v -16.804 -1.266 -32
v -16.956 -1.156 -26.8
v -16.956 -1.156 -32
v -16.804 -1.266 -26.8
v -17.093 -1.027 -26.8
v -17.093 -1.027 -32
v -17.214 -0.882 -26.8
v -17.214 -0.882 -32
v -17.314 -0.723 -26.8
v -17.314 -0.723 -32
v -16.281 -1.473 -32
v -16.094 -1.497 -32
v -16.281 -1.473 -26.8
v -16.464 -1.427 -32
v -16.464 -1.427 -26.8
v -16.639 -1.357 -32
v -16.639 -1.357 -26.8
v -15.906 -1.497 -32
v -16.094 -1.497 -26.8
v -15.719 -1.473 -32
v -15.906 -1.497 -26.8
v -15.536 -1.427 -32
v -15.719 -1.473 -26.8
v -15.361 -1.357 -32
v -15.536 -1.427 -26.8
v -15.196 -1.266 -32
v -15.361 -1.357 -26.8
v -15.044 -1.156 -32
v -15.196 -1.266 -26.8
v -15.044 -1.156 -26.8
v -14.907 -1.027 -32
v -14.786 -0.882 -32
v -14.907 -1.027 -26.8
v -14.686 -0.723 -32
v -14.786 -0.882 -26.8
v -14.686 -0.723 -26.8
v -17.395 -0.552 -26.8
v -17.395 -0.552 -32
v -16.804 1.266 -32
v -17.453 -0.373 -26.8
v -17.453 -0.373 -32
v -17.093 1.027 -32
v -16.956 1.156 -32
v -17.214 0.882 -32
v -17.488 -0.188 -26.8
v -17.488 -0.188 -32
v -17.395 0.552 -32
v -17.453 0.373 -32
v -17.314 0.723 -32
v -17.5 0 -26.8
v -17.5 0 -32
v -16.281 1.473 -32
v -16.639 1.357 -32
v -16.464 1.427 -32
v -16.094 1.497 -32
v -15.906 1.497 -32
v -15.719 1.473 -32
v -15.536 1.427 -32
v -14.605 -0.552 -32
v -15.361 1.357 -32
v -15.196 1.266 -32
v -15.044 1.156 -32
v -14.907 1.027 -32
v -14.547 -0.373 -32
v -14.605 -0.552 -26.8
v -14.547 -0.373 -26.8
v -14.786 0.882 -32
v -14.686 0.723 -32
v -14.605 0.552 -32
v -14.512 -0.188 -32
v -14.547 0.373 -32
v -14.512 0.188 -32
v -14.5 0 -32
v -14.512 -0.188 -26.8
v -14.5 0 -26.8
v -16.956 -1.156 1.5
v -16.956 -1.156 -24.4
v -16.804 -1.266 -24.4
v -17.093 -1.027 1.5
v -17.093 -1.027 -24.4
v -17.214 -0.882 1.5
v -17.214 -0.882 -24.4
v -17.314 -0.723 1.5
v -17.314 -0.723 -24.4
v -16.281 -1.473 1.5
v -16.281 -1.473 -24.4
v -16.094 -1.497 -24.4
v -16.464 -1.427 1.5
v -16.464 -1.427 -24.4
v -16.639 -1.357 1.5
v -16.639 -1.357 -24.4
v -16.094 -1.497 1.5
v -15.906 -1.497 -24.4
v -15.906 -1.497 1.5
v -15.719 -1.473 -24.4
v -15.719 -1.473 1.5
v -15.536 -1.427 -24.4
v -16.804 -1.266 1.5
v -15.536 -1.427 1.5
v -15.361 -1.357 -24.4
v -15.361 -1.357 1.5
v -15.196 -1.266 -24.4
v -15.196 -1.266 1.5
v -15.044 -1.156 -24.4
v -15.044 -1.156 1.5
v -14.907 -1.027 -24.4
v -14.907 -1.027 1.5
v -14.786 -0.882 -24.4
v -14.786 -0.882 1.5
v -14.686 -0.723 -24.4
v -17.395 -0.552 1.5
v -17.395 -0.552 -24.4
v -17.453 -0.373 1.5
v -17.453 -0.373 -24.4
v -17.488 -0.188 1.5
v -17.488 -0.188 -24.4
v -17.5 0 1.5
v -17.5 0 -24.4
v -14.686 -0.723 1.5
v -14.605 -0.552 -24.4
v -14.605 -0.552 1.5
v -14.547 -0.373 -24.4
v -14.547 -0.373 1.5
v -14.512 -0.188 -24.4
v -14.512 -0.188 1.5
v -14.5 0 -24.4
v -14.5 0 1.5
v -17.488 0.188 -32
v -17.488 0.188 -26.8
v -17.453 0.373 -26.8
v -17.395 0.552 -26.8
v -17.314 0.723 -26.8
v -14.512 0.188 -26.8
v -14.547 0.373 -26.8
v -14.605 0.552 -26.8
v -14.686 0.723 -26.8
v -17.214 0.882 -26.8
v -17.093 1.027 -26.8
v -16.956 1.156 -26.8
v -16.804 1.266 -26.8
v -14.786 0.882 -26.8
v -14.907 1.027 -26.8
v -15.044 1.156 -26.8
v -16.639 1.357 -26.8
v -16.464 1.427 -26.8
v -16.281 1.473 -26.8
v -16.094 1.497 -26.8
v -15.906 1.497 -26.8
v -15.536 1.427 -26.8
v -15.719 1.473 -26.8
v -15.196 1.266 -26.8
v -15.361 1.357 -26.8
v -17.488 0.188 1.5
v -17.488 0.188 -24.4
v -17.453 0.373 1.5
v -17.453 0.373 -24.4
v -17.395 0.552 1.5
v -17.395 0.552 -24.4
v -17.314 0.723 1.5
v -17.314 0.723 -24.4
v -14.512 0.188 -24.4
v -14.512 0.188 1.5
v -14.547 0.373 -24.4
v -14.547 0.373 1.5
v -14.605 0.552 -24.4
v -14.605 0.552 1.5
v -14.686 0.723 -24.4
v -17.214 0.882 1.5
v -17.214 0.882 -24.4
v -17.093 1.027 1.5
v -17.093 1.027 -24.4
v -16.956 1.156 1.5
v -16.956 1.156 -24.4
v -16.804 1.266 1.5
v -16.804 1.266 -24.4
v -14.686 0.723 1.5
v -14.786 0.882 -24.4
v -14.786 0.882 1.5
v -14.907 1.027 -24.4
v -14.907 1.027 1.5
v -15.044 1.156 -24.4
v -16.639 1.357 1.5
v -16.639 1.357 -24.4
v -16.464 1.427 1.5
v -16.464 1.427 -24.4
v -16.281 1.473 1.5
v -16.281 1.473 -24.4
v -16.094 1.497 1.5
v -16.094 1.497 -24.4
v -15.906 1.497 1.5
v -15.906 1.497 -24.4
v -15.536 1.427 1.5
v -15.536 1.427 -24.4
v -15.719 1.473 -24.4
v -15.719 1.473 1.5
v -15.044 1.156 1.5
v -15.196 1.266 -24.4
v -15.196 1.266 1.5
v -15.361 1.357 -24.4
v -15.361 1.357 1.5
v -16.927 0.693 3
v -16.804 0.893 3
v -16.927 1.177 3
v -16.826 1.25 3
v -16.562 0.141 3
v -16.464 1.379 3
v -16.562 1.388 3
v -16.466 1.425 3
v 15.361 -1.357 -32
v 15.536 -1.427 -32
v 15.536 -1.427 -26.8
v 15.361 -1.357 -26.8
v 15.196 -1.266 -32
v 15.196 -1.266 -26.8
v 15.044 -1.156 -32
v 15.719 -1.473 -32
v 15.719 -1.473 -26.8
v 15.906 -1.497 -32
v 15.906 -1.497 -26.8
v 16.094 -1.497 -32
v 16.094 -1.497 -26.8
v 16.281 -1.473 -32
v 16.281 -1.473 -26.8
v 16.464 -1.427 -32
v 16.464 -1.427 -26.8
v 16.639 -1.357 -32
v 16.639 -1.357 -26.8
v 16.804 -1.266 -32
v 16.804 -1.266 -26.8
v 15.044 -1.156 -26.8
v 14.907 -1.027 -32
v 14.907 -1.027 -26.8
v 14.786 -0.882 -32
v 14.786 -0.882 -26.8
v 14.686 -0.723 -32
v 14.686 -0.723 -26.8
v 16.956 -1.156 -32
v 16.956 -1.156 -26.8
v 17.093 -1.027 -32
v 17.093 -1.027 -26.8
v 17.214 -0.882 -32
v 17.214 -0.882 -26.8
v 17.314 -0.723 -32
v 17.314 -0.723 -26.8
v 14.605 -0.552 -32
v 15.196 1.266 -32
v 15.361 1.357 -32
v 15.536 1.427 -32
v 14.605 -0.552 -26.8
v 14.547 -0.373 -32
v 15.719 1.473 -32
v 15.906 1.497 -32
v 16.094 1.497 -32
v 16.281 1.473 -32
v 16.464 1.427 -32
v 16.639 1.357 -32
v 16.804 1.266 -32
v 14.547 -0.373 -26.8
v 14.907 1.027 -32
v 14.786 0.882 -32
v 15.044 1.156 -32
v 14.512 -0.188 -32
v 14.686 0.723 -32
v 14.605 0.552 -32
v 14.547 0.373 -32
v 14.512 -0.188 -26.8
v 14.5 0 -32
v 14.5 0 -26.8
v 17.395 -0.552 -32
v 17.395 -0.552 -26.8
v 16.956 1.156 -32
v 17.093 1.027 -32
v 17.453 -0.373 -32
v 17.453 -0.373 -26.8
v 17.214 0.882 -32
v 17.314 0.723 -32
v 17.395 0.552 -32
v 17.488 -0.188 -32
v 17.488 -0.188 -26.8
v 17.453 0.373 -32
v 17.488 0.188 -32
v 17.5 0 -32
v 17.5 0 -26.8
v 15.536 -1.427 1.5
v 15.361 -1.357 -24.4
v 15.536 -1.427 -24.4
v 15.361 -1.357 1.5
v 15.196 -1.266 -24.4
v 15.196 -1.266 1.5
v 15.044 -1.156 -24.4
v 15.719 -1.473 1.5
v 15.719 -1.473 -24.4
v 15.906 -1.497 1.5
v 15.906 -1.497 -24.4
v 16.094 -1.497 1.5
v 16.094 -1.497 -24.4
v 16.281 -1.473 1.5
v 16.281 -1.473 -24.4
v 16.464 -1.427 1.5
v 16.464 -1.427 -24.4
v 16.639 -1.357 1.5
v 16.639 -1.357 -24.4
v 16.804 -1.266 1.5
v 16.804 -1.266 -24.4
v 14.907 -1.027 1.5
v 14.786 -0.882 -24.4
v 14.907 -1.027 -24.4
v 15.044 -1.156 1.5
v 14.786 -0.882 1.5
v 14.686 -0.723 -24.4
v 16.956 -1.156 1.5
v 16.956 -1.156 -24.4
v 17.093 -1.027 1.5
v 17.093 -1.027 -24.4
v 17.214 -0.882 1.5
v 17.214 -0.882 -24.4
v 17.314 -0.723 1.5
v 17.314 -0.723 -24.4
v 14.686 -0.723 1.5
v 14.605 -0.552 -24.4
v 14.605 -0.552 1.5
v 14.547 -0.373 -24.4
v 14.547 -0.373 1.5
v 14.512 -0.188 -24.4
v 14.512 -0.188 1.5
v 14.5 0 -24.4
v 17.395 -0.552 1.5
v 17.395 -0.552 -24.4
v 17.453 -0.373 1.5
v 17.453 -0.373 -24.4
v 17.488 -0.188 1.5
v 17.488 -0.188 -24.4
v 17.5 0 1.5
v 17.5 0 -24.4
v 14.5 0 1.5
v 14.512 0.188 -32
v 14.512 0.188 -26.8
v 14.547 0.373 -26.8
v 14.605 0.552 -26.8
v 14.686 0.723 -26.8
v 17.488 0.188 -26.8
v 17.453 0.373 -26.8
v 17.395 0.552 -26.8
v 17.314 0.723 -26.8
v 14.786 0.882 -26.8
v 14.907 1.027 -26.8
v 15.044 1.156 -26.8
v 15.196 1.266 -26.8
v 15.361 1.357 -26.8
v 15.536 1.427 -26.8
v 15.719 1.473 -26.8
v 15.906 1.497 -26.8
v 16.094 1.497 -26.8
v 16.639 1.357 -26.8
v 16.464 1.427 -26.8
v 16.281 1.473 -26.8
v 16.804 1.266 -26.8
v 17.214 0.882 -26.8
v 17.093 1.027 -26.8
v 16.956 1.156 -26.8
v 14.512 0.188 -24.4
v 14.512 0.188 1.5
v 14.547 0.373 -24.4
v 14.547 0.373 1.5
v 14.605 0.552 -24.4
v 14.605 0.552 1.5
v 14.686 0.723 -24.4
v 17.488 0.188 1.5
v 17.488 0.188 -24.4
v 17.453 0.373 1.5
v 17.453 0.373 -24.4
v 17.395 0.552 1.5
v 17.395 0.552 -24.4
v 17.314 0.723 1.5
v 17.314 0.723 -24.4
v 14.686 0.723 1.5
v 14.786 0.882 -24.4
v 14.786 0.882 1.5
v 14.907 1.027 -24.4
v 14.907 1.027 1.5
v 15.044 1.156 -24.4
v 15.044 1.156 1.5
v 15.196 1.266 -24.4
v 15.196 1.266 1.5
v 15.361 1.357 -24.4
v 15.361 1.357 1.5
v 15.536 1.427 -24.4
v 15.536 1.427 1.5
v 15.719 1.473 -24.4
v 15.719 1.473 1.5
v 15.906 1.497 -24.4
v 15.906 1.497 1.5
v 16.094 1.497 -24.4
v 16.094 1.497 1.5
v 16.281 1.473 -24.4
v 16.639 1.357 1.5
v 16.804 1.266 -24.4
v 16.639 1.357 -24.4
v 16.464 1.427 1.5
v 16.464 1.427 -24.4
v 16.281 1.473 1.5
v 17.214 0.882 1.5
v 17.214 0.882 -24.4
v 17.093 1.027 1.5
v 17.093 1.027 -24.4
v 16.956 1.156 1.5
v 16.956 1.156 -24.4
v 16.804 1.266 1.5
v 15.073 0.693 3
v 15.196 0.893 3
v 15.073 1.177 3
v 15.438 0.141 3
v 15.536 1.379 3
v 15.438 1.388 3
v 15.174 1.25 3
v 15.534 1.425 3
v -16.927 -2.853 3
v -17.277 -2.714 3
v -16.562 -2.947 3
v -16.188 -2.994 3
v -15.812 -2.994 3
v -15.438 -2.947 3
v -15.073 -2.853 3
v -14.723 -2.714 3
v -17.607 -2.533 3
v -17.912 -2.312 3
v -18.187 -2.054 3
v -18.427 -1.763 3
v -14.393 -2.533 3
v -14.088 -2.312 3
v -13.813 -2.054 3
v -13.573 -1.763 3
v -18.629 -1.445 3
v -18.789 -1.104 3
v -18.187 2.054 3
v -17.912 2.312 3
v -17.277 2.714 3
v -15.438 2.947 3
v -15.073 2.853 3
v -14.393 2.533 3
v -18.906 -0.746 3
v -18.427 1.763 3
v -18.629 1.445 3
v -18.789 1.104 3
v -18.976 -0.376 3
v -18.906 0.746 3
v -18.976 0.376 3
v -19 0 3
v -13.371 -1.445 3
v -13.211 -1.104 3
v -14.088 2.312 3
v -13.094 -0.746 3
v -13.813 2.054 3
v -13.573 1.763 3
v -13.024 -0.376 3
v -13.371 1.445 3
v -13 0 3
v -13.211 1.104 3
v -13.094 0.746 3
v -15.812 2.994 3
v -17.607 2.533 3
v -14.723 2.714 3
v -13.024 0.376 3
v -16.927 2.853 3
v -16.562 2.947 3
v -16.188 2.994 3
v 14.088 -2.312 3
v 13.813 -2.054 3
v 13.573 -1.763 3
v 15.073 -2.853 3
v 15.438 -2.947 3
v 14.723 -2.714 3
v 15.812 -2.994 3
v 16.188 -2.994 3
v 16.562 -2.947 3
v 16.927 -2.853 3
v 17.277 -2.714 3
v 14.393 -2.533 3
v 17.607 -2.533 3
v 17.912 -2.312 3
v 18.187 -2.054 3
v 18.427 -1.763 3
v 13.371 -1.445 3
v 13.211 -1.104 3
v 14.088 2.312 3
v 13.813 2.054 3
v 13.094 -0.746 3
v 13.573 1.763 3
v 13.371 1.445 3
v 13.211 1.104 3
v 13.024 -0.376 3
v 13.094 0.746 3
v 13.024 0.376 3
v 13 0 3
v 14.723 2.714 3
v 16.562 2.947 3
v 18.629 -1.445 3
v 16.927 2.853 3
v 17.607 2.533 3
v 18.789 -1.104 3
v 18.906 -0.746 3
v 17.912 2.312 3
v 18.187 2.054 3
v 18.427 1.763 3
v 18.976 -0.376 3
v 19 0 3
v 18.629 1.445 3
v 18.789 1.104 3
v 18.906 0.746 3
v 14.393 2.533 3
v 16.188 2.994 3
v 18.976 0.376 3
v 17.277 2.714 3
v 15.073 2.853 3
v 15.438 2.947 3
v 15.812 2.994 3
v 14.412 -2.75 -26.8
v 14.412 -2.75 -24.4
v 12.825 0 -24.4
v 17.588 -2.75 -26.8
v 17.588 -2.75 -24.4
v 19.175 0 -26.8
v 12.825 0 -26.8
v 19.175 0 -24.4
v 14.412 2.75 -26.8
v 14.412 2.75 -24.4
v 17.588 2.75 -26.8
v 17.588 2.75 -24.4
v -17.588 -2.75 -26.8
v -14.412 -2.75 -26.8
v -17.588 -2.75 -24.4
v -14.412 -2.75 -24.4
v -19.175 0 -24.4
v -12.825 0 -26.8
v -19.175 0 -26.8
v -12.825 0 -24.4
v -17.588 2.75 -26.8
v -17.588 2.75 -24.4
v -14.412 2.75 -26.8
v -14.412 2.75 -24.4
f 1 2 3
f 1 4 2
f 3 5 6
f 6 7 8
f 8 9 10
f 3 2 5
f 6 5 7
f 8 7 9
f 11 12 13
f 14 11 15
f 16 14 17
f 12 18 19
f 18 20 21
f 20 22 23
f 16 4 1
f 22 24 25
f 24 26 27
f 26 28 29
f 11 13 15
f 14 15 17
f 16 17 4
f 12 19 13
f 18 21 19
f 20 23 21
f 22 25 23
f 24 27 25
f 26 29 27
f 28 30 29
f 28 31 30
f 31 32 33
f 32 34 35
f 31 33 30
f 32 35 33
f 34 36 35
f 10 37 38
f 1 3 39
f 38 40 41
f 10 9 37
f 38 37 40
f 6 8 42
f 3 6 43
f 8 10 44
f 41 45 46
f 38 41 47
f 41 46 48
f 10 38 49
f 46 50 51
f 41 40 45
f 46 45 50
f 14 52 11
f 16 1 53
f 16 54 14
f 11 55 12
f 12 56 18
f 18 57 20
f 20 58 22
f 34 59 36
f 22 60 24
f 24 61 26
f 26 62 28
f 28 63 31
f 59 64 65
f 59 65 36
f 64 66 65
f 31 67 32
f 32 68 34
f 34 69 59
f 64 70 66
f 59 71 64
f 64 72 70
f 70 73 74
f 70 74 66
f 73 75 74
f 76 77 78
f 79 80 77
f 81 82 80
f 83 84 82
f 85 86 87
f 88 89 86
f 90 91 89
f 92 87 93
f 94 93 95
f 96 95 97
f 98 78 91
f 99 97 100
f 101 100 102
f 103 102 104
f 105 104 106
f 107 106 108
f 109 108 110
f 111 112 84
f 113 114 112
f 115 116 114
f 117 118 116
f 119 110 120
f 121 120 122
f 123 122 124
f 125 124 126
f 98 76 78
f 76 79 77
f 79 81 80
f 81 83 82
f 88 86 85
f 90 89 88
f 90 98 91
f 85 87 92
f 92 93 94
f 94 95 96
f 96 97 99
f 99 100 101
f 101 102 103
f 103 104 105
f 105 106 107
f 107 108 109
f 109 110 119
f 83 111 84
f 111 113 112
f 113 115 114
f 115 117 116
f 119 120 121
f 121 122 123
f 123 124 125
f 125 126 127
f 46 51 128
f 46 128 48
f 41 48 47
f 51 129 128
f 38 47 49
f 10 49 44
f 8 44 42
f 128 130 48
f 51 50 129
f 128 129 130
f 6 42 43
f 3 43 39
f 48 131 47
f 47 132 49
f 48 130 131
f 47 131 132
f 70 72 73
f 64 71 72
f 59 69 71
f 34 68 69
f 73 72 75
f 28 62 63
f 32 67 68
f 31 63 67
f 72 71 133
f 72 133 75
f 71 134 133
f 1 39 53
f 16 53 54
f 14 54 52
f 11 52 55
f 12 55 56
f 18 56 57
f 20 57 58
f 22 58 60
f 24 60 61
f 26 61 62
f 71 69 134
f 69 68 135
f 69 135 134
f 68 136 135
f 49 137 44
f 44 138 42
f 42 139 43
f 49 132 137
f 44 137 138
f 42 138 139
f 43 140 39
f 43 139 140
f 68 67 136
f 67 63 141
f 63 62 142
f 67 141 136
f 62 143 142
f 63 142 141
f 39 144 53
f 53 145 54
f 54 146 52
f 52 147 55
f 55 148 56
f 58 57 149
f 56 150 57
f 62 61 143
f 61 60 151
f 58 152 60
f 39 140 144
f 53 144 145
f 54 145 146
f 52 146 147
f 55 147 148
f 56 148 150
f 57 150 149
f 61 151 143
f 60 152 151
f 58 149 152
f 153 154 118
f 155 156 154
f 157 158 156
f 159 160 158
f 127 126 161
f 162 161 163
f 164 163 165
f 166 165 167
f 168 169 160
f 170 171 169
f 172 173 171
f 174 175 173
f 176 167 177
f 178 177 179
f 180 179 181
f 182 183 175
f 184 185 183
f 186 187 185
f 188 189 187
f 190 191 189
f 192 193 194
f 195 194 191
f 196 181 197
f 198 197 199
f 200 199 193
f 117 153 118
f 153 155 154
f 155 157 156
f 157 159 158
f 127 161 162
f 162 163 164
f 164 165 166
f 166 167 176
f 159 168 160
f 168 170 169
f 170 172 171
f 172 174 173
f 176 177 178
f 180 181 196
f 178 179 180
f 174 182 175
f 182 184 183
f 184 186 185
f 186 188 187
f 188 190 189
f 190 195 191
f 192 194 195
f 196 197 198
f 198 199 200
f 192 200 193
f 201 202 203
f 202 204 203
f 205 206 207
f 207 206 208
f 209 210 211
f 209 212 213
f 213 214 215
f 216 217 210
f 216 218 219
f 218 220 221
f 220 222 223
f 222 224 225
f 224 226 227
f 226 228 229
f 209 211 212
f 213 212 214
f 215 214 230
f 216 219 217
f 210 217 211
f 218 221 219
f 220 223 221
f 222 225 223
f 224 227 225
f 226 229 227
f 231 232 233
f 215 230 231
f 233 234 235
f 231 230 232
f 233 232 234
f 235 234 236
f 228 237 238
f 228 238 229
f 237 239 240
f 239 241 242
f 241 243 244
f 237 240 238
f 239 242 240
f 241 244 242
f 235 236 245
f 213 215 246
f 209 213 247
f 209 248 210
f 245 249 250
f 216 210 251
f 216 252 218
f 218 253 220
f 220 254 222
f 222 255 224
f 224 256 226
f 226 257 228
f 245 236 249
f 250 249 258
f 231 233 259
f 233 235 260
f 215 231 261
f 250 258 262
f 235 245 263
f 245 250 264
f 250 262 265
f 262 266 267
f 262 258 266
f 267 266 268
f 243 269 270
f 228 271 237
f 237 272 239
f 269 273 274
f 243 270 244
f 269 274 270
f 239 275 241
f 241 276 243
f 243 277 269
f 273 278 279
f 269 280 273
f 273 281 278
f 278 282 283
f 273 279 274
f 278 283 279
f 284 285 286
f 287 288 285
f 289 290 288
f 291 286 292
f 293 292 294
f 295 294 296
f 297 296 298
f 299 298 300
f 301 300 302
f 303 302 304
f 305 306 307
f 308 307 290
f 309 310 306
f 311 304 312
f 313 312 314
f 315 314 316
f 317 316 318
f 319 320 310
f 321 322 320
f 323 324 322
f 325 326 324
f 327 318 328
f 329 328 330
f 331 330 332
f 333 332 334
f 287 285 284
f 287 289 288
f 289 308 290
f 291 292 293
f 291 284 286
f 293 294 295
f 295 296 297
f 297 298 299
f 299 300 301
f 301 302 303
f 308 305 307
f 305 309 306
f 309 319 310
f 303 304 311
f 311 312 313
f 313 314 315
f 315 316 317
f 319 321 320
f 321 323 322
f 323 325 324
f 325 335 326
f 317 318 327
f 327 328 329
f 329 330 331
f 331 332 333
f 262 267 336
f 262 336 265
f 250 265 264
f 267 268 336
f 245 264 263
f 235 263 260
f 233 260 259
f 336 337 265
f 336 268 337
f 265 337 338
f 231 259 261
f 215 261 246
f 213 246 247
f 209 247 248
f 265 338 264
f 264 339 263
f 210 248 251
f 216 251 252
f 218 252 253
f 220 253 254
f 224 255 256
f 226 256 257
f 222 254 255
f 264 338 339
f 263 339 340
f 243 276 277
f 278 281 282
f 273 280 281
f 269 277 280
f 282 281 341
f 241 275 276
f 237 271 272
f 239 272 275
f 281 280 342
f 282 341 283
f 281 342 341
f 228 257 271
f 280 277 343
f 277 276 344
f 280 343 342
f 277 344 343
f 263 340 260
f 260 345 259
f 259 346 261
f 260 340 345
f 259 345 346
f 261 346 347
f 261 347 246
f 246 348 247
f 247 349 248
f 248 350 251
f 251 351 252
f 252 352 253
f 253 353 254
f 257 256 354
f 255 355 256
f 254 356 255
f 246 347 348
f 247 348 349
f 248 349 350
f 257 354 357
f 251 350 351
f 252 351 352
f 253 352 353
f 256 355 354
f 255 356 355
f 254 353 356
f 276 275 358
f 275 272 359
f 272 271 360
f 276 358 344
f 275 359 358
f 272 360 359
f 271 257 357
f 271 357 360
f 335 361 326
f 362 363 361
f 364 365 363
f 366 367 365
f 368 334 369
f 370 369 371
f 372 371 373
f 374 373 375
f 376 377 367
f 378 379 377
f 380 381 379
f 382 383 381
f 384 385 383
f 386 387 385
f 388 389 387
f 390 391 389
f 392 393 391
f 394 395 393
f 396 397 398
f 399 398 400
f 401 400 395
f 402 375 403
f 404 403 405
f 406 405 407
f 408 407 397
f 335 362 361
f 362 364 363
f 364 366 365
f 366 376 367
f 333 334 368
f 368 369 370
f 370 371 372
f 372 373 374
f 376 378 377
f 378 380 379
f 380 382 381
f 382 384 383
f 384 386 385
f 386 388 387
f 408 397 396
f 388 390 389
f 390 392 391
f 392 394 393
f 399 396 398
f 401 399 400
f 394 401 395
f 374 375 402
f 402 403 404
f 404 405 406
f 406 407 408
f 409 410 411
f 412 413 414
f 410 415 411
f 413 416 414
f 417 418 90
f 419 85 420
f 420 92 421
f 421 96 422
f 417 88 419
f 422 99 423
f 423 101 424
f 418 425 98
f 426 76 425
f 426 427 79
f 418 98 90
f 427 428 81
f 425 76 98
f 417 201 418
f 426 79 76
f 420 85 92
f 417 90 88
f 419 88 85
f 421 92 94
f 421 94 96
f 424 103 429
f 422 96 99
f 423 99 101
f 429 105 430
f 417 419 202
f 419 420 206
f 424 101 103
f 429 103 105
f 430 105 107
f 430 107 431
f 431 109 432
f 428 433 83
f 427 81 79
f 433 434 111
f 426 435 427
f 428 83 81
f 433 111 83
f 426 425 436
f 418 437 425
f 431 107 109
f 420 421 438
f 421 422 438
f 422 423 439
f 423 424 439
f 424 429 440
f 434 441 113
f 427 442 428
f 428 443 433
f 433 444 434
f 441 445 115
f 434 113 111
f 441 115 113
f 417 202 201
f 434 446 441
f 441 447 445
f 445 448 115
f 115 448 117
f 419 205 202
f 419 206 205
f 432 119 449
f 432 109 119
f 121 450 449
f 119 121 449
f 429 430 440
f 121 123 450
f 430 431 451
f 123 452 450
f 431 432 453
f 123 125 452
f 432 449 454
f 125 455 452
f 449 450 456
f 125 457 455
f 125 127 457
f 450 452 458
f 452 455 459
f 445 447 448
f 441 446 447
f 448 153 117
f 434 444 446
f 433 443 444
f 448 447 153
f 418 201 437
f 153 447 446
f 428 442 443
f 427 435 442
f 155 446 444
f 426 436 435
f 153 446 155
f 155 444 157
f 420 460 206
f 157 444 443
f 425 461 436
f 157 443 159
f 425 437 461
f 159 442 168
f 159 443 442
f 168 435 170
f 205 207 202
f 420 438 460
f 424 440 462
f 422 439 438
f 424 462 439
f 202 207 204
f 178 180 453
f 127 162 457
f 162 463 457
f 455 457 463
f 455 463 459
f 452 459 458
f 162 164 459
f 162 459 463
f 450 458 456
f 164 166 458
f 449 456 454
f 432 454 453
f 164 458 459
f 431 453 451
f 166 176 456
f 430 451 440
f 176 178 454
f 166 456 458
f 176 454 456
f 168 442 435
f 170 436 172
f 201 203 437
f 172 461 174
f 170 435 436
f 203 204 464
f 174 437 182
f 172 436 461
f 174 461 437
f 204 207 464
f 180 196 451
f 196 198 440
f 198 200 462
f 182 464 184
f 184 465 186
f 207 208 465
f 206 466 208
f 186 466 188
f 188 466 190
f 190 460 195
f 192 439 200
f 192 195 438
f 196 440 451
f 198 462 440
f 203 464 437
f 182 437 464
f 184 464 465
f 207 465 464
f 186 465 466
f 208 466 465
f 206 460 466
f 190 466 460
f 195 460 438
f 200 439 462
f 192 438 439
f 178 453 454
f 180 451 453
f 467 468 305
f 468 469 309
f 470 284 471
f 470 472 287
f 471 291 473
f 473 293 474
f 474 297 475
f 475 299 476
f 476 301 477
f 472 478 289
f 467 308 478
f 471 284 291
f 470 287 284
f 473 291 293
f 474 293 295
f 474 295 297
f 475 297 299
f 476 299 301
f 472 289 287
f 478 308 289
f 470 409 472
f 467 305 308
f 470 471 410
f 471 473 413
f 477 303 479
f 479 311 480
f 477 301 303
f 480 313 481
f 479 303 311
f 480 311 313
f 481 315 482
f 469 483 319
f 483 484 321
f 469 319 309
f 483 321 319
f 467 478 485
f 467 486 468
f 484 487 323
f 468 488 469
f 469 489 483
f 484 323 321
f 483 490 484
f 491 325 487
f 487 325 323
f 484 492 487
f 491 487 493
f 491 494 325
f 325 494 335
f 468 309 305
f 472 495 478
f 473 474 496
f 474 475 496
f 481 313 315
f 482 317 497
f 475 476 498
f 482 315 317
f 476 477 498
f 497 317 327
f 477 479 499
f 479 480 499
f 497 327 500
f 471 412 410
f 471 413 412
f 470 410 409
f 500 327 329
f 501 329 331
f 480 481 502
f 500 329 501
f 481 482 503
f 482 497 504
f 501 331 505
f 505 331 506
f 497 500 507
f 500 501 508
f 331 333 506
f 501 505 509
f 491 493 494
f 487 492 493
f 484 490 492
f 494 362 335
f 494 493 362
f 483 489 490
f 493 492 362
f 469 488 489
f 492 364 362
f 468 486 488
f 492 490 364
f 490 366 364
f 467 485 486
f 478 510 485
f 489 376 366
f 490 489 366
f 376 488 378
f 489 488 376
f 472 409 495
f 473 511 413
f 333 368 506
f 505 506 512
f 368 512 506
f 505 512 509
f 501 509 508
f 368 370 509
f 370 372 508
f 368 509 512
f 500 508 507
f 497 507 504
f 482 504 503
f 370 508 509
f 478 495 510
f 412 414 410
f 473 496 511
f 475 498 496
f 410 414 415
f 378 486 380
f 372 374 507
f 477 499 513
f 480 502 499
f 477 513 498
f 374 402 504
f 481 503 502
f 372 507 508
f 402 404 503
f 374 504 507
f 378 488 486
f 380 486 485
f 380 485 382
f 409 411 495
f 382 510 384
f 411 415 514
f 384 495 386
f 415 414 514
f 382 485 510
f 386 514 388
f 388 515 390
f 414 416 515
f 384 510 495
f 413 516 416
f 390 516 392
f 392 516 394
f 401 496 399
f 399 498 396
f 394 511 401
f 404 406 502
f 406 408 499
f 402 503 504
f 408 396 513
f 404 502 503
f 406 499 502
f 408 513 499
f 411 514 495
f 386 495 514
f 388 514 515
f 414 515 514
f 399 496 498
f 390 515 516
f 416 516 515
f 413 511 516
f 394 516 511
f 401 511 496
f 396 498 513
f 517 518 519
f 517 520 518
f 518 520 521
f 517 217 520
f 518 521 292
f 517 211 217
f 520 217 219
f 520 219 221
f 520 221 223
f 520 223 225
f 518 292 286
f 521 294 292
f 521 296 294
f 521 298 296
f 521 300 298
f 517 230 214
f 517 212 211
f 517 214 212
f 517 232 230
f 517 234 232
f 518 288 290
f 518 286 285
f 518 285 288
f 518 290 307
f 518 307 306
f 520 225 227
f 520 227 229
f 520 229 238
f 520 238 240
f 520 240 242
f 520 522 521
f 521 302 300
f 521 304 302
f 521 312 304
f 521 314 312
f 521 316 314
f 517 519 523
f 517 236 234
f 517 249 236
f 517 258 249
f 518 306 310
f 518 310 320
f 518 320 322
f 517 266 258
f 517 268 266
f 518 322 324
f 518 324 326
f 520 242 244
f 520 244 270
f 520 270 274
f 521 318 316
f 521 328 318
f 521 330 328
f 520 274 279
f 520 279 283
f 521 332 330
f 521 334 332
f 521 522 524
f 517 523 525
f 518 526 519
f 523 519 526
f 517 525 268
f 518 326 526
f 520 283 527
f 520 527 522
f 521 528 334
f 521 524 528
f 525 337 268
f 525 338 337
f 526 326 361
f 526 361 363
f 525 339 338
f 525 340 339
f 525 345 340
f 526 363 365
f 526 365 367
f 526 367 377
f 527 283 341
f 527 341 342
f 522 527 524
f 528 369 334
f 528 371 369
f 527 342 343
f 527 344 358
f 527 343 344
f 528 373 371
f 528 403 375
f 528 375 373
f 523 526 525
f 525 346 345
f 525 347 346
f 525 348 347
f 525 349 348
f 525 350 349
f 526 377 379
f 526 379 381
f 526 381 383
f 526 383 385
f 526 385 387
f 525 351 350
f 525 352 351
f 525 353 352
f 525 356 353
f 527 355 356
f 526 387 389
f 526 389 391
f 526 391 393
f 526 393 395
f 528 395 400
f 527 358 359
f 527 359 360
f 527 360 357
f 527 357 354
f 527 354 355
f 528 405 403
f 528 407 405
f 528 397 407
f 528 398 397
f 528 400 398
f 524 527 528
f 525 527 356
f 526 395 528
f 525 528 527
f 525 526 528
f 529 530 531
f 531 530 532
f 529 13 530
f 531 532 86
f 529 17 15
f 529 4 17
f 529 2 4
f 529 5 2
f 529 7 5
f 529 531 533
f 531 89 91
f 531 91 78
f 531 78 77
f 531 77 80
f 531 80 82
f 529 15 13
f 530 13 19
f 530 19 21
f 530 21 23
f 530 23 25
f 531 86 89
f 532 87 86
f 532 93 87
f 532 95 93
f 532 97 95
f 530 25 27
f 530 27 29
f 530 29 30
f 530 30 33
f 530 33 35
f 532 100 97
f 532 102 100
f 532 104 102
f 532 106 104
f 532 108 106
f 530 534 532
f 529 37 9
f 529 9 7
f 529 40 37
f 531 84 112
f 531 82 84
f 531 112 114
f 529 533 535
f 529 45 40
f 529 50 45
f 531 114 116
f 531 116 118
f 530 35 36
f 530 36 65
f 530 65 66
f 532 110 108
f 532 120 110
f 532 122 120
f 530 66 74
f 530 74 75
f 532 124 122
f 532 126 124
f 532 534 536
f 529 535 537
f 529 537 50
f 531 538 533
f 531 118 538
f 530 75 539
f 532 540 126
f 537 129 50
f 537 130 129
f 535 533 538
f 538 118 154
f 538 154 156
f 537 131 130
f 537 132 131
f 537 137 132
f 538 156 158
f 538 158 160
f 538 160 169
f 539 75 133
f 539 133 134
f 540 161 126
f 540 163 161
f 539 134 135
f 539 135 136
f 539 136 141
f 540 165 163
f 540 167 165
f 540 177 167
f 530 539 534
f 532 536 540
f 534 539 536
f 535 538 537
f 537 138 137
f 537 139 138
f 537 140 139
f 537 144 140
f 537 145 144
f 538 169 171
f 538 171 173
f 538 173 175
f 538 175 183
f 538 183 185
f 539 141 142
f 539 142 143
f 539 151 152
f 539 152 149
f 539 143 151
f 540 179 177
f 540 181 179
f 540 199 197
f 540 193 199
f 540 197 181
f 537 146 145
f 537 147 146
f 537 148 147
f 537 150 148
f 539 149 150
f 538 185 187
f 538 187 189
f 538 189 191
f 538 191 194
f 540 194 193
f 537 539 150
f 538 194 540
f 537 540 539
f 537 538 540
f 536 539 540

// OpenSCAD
$fn = 50;

difference() {
	union() {
		translate(v = [-16, 0, 3]) {
			rotate(a = [0, 0, 0]) {
				difference() {
					union() {
						translate(v = [0, 0, -35.0]) {
							cylinder(h = 35, r = 1.5);
						}
						translate(v = [0, 0, -1.5]) {
							cylinder(h = 1.5, r1 = 1.5, r2 = 3);
						}
					}
					union();
				}
			}
		}
		translate(v = [-16, 0, -26.8]) {
			rotate(a = [0, 0, 0]) {
				difference() {
					union() {
						linear_extrude(height = 2.4) {
							polygon(points = [[3.1754264805429417, 0.0], [1.5877132402714713, 2.75], [-1.5877132402714702, 2.7500000000000004], [-3.1754264805429417, 3.888775875324659e-16], [-1.5877132402714722, -2.7499999999999996], [1.5877132402714687, -2.7500000000000013]]);
						}
					}
					union();
				}
			}
		}
		translate(v = [16, 0, 3]) {
			rotate(a = [0, 0, 0]) {
				difference() {
					union() {
						translate(v = [0, 0, -35.0]) {
							cylinder(h = 35, r = 1.5);
						}
						translate(v = [0, 0, -1.5]) {
							cylinder(h = 1.5, r1 = 1.5, r2 = 3);
						}
					}
					union();
				}
			}
		}
		translate(v = [16, 0, -26.8]) {
			rotate(a = [0, 0, 0]) {
				difference() {
					union() {
						linear_extrude(height = 2.4) {
							polygon(points = [[3.1754264805429417, 0.0], [1.5877132402714713, 2.75], [-1.5877132402714702, 2.7500000000000004], [-3.1754264805429417, 3.888775875324659e-16], [-1.5877132402714722, -2.7499999999999996], [1.5877132402714687, -2.7500000000000013]]);
						}
					}
					union();
				}
			}
		}
	}
	union();
}
